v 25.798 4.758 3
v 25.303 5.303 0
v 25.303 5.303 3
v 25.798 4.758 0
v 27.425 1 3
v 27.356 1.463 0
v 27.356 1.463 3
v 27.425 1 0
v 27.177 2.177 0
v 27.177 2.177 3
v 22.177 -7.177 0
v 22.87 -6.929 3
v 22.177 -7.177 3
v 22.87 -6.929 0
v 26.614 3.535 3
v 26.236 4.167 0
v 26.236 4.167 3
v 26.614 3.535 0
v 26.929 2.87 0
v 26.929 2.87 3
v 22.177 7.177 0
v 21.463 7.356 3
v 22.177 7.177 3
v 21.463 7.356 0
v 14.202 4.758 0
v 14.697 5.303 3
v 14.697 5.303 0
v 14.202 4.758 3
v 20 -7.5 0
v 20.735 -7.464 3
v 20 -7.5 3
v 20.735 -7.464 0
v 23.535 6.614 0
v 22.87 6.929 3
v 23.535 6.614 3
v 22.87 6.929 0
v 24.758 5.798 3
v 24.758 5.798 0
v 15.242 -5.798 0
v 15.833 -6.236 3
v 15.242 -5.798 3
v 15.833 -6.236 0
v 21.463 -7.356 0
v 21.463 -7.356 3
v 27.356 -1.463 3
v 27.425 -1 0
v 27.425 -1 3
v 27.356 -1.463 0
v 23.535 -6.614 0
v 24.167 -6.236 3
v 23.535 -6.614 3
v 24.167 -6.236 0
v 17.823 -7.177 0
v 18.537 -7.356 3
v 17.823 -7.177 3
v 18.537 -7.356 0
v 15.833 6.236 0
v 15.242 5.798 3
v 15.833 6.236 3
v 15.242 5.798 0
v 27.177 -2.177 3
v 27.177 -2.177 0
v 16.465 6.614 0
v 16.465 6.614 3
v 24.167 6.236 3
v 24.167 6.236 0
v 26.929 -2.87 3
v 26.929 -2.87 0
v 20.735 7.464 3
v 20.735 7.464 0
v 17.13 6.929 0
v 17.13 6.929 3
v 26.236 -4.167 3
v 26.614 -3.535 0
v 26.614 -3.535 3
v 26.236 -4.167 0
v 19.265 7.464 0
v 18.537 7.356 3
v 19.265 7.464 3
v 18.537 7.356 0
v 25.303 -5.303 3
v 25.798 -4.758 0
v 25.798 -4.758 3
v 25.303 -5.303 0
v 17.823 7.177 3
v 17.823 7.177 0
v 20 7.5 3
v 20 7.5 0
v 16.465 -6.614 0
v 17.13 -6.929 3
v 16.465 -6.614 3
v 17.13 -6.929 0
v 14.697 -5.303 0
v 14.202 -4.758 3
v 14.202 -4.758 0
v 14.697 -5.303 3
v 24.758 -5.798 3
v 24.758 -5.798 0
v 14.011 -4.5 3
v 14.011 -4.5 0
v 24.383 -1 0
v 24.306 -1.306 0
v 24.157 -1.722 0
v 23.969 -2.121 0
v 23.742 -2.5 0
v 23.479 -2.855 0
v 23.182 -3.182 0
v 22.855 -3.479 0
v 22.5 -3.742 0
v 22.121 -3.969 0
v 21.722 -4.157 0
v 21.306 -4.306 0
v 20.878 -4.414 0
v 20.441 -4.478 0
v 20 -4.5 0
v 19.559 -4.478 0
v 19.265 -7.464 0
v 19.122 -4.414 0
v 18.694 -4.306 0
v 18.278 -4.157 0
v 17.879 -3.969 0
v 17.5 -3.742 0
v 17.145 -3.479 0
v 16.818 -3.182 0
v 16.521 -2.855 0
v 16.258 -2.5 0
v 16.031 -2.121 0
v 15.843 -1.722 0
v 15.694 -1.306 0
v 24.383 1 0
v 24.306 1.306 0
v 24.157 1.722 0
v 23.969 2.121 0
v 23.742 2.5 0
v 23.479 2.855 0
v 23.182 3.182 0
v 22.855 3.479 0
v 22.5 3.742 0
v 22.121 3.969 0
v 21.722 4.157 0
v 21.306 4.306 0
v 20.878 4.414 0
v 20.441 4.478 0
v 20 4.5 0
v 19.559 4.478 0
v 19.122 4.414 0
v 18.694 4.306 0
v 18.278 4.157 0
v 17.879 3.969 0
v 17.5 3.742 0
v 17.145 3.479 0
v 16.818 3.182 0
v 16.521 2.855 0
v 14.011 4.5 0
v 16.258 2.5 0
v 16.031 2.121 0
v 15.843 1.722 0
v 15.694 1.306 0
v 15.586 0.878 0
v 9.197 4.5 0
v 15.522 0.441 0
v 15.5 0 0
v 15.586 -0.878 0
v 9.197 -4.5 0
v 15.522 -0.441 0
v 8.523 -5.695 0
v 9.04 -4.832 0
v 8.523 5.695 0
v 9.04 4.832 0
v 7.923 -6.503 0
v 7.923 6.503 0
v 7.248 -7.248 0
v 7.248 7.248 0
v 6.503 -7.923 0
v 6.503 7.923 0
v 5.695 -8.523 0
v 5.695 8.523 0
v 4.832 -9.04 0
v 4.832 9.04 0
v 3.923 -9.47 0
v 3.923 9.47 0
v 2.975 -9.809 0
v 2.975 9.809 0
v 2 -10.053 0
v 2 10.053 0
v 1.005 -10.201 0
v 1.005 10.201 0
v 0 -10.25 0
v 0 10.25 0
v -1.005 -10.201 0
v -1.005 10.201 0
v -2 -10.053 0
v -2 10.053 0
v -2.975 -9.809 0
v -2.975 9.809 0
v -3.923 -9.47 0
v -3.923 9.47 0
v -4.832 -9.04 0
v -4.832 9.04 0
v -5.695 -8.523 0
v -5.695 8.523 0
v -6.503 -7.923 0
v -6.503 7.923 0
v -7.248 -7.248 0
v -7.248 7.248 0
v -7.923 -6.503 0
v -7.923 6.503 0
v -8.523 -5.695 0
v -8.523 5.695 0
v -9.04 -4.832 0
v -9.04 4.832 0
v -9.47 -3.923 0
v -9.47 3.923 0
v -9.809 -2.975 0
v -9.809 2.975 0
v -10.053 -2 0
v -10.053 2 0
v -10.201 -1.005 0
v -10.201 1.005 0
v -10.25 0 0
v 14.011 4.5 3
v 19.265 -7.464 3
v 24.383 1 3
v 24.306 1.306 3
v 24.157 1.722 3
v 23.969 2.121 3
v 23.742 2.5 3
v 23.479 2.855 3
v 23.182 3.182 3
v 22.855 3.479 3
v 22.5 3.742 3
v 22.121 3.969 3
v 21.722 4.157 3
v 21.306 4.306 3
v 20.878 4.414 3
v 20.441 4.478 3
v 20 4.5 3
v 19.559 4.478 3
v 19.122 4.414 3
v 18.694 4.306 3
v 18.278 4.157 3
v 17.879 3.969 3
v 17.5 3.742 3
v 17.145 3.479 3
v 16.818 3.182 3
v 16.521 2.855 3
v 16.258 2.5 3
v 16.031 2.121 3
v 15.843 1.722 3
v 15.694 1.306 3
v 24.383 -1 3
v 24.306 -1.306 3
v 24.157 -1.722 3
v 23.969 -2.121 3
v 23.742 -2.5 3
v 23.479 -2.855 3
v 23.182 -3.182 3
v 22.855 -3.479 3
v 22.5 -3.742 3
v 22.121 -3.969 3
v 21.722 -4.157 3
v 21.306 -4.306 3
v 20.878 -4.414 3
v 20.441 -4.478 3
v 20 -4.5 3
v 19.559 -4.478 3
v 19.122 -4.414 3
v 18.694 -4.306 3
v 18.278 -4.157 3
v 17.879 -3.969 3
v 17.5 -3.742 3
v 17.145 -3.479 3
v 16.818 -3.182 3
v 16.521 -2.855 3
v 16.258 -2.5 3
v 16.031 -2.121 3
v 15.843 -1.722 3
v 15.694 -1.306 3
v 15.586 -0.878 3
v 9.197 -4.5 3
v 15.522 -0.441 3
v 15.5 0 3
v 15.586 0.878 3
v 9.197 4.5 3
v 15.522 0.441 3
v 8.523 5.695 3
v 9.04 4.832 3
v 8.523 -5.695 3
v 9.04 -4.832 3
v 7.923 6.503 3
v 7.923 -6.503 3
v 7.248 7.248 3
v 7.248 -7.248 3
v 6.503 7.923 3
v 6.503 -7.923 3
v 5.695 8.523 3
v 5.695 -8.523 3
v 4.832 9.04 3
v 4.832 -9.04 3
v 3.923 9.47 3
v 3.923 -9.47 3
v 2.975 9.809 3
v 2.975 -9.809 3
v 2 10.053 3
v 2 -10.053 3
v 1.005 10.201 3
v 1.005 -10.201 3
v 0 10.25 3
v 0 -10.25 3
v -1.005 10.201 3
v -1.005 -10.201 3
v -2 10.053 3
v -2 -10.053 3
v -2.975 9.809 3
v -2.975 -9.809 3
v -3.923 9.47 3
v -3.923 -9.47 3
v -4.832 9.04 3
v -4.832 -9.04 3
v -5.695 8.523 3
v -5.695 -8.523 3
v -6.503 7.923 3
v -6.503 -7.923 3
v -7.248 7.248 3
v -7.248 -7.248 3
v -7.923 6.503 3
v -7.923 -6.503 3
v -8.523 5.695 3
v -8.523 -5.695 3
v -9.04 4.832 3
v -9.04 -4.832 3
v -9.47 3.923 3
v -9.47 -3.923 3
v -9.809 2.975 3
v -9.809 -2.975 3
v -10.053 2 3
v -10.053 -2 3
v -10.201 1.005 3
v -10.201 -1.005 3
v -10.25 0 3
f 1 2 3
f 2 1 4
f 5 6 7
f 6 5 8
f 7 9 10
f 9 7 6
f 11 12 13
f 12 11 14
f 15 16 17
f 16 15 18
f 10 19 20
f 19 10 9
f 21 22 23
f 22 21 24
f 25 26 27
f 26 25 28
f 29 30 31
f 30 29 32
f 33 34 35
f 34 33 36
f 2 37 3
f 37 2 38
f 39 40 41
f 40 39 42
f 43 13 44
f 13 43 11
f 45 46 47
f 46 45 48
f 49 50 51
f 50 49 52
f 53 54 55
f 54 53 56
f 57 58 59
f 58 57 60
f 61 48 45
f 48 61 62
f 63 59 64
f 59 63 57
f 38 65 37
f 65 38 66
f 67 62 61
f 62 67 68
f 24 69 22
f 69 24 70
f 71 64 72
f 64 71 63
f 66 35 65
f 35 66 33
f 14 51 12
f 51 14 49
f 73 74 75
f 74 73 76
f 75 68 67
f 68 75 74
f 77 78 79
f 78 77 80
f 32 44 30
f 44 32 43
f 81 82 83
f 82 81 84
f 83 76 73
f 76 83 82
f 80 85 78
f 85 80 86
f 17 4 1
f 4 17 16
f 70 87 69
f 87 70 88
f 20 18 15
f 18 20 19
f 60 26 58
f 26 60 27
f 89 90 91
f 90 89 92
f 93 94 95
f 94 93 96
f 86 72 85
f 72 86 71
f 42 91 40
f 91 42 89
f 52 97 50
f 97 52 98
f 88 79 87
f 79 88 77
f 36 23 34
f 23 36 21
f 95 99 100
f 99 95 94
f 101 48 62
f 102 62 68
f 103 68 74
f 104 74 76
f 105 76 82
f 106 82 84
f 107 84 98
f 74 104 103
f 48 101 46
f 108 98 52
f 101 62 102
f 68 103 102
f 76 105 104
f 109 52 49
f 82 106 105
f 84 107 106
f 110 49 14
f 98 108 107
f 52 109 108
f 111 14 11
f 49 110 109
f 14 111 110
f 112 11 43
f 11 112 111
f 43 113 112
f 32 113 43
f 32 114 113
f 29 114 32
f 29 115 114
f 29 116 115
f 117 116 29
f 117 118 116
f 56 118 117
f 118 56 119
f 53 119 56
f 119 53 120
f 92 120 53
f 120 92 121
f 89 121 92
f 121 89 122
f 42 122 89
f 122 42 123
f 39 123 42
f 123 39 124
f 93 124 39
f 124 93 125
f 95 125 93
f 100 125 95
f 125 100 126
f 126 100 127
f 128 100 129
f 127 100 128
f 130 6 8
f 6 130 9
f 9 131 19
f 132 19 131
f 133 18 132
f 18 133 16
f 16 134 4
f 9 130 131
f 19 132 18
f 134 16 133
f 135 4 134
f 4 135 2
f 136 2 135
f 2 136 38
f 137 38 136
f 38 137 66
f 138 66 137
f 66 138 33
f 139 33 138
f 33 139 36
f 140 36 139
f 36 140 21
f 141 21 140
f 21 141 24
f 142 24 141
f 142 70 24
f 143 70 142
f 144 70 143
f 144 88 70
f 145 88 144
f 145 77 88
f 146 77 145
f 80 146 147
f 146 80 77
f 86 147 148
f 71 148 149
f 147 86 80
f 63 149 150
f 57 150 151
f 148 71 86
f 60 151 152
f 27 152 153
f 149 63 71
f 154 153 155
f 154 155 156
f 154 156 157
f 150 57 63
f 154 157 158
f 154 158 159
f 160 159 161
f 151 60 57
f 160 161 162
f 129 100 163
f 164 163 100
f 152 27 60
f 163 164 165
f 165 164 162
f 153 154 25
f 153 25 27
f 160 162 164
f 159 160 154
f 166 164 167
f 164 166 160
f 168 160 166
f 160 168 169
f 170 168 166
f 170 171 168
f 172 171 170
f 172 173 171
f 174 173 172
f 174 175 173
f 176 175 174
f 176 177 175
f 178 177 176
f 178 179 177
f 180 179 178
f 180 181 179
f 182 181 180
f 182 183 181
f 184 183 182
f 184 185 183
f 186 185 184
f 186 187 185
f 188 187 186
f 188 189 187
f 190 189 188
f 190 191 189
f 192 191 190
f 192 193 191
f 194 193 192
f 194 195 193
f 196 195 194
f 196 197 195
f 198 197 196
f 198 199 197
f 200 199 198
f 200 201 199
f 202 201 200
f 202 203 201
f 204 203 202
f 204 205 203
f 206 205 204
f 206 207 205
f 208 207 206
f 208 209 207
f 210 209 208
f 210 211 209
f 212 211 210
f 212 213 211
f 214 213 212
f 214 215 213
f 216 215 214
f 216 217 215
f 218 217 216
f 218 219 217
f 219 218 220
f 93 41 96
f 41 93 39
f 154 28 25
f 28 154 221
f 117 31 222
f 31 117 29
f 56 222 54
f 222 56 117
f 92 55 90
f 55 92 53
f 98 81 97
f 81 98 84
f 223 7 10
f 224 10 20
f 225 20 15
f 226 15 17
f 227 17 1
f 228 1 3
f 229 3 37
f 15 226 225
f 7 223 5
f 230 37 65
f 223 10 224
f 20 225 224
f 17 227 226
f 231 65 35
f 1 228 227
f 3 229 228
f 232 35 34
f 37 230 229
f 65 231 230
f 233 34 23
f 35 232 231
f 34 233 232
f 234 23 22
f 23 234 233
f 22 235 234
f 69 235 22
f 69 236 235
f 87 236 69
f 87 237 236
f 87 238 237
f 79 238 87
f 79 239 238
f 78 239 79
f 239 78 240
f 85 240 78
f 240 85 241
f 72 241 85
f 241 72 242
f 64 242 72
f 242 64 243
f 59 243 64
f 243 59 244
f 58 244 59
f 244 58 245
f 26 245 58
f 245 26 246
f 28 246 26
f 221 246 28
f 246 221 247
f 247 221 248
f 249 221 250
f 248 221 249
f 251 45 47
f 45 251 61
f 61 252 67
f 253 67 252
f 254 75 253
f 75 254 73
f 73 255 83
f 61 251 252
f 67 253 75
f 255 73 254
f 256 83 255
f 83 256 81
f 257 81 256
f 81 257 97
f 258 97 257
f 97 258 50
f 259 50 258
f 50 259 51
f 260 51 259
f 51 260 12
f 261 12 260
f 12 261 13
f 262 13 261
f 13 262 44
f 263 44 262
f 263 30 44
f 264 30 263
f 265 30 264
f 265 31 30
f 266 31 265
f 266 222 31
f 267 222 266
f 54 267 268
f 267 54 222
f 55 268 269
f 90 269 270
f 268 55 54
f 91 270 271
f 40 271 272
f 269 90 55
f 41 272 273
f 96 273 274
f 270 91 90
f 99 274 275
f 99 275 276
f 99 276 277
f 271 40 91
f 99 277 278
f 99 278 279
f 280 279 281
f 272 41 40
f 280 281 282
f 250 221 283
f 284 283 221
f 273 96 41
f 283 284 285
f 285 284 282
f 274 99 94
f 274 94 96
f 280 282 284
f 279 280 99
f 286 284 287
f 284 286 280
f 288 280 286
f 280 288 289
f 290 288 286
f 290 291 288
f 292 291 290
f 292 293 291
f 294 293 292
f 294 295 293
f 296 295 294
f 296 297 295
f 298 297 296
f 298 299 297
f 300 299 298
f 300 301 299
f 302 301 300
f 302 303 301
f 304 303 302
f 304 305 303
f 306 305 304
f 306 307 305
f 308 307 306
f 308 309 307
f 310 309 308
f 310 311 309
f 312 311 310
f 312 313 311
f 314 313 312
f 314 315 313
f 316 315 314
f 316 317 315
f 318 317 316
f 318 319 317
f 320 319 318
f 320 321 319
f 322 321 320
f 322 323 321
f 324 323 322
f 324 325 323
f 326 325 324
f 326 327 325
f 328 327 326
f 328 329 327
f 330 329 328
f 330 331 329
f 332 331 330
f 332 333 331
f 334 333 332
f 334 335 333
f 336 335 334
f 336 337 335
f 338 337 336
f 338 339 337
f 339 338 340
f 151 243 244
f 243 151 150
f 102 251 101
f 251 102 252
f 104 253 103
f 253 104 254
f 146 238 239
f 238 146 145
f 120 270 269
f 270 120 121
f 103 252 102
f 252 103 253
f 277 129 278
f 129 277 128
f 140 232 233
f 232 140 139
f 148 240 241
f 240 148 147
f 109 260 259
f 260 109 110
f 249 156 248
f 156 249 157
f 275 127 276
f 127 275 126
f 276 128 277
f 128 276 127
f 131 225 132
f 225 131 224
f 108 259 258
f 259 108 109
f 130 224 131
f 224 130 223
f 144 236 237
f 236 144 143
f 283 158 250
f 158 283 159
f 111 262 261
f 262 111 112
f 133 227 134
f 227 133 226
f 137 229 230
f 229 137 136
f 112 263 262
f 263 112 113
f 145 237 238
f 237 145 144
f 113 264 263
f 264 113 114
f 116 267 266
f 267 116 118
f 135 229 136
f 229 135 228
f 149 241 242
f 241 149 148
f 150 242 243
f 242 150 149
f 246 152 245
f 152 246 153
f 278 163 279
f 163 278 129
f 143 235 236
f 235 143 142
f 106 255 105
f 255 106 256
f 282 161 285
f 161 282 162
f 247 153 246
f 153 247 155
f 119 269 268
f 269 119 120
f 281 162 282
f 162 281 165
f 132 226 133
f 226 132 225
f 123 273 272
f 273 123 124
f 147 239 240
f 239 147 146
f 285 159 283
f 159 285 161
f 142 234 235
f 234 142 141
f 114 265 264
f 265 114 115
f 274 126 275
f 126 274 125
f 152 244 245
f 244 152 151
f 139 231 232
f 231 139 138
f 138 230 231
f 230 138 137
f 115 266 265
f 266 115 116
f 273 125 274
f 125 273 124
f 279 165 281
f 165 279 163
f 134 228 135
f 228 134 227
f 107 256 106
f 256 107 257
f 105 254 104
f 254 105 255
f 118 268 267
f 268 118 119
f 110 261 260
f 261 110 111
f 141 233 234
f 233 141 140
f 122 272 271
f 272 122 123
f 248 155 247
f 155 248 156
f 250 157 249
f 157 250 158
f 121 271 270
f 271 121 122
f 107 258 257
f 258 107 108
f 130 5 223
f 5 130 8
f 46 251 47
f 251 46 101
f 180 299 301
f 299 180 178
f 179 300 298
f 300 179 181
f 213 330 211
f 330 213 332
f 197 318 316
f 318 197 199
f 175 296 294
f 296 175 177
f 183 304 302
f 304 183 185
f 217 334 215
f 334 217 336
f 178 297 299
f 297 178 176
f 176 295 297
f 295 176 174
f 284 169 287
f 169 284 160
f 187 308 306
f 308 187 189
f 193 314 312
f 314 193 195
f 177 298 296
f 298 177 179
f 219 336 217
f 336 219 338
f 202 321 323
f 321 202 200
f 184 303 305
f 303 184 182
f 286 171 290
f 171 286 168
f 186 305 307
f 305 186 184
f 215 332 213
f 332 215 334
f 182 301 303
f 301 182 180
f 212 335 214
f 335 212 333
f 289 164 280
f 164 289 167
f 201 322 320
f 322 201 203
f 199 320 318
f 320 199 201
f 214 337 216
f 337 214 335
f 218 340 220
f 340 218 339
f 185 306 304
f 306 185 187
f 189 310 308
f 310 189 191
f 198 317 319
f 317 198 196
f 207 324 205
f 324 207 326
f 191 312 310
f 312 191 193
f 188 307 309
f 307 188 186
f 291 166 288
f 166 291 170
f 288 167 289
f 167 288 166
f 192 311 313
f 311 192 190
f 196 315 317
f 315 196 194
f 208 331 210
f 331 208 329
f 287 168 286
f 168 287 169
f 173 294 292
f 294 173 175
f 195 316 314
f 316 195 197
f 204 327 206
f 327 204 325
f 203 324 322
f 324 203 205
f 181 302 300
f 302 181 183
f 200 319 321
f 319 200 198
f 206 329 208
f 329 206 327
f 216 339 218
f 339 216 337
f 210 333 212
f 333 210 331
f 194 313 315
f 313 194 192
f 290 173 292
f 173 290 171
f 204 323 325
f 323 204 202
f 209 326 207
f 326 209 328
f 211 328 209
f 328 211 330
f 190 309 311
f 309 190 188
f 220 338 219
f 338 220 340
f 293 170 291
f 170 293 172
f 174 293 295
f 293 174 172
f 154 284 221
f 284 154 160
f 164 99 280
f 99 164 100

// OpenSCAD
// Thickness
thickness = 3;

// Quality of spheres
$fn = 64; // [16:128]

union() {
  // Main coin part
  cylinder(d=20.5, h=thickness);

  // Bar between coin and grip
  translate([6,-4.5,0]) cube([9,9,thickness]);

  // Grip
  translate([20,0,0]) difference() {
    cylinder(d=15, h=thickness);
    translate([0,0,-1]) cylinder(d=9, h=thickness+2);

    // Cut out of ring
    translate([3.5,-1,-1]) cube([5,2,thickness+2]);
  }
}
